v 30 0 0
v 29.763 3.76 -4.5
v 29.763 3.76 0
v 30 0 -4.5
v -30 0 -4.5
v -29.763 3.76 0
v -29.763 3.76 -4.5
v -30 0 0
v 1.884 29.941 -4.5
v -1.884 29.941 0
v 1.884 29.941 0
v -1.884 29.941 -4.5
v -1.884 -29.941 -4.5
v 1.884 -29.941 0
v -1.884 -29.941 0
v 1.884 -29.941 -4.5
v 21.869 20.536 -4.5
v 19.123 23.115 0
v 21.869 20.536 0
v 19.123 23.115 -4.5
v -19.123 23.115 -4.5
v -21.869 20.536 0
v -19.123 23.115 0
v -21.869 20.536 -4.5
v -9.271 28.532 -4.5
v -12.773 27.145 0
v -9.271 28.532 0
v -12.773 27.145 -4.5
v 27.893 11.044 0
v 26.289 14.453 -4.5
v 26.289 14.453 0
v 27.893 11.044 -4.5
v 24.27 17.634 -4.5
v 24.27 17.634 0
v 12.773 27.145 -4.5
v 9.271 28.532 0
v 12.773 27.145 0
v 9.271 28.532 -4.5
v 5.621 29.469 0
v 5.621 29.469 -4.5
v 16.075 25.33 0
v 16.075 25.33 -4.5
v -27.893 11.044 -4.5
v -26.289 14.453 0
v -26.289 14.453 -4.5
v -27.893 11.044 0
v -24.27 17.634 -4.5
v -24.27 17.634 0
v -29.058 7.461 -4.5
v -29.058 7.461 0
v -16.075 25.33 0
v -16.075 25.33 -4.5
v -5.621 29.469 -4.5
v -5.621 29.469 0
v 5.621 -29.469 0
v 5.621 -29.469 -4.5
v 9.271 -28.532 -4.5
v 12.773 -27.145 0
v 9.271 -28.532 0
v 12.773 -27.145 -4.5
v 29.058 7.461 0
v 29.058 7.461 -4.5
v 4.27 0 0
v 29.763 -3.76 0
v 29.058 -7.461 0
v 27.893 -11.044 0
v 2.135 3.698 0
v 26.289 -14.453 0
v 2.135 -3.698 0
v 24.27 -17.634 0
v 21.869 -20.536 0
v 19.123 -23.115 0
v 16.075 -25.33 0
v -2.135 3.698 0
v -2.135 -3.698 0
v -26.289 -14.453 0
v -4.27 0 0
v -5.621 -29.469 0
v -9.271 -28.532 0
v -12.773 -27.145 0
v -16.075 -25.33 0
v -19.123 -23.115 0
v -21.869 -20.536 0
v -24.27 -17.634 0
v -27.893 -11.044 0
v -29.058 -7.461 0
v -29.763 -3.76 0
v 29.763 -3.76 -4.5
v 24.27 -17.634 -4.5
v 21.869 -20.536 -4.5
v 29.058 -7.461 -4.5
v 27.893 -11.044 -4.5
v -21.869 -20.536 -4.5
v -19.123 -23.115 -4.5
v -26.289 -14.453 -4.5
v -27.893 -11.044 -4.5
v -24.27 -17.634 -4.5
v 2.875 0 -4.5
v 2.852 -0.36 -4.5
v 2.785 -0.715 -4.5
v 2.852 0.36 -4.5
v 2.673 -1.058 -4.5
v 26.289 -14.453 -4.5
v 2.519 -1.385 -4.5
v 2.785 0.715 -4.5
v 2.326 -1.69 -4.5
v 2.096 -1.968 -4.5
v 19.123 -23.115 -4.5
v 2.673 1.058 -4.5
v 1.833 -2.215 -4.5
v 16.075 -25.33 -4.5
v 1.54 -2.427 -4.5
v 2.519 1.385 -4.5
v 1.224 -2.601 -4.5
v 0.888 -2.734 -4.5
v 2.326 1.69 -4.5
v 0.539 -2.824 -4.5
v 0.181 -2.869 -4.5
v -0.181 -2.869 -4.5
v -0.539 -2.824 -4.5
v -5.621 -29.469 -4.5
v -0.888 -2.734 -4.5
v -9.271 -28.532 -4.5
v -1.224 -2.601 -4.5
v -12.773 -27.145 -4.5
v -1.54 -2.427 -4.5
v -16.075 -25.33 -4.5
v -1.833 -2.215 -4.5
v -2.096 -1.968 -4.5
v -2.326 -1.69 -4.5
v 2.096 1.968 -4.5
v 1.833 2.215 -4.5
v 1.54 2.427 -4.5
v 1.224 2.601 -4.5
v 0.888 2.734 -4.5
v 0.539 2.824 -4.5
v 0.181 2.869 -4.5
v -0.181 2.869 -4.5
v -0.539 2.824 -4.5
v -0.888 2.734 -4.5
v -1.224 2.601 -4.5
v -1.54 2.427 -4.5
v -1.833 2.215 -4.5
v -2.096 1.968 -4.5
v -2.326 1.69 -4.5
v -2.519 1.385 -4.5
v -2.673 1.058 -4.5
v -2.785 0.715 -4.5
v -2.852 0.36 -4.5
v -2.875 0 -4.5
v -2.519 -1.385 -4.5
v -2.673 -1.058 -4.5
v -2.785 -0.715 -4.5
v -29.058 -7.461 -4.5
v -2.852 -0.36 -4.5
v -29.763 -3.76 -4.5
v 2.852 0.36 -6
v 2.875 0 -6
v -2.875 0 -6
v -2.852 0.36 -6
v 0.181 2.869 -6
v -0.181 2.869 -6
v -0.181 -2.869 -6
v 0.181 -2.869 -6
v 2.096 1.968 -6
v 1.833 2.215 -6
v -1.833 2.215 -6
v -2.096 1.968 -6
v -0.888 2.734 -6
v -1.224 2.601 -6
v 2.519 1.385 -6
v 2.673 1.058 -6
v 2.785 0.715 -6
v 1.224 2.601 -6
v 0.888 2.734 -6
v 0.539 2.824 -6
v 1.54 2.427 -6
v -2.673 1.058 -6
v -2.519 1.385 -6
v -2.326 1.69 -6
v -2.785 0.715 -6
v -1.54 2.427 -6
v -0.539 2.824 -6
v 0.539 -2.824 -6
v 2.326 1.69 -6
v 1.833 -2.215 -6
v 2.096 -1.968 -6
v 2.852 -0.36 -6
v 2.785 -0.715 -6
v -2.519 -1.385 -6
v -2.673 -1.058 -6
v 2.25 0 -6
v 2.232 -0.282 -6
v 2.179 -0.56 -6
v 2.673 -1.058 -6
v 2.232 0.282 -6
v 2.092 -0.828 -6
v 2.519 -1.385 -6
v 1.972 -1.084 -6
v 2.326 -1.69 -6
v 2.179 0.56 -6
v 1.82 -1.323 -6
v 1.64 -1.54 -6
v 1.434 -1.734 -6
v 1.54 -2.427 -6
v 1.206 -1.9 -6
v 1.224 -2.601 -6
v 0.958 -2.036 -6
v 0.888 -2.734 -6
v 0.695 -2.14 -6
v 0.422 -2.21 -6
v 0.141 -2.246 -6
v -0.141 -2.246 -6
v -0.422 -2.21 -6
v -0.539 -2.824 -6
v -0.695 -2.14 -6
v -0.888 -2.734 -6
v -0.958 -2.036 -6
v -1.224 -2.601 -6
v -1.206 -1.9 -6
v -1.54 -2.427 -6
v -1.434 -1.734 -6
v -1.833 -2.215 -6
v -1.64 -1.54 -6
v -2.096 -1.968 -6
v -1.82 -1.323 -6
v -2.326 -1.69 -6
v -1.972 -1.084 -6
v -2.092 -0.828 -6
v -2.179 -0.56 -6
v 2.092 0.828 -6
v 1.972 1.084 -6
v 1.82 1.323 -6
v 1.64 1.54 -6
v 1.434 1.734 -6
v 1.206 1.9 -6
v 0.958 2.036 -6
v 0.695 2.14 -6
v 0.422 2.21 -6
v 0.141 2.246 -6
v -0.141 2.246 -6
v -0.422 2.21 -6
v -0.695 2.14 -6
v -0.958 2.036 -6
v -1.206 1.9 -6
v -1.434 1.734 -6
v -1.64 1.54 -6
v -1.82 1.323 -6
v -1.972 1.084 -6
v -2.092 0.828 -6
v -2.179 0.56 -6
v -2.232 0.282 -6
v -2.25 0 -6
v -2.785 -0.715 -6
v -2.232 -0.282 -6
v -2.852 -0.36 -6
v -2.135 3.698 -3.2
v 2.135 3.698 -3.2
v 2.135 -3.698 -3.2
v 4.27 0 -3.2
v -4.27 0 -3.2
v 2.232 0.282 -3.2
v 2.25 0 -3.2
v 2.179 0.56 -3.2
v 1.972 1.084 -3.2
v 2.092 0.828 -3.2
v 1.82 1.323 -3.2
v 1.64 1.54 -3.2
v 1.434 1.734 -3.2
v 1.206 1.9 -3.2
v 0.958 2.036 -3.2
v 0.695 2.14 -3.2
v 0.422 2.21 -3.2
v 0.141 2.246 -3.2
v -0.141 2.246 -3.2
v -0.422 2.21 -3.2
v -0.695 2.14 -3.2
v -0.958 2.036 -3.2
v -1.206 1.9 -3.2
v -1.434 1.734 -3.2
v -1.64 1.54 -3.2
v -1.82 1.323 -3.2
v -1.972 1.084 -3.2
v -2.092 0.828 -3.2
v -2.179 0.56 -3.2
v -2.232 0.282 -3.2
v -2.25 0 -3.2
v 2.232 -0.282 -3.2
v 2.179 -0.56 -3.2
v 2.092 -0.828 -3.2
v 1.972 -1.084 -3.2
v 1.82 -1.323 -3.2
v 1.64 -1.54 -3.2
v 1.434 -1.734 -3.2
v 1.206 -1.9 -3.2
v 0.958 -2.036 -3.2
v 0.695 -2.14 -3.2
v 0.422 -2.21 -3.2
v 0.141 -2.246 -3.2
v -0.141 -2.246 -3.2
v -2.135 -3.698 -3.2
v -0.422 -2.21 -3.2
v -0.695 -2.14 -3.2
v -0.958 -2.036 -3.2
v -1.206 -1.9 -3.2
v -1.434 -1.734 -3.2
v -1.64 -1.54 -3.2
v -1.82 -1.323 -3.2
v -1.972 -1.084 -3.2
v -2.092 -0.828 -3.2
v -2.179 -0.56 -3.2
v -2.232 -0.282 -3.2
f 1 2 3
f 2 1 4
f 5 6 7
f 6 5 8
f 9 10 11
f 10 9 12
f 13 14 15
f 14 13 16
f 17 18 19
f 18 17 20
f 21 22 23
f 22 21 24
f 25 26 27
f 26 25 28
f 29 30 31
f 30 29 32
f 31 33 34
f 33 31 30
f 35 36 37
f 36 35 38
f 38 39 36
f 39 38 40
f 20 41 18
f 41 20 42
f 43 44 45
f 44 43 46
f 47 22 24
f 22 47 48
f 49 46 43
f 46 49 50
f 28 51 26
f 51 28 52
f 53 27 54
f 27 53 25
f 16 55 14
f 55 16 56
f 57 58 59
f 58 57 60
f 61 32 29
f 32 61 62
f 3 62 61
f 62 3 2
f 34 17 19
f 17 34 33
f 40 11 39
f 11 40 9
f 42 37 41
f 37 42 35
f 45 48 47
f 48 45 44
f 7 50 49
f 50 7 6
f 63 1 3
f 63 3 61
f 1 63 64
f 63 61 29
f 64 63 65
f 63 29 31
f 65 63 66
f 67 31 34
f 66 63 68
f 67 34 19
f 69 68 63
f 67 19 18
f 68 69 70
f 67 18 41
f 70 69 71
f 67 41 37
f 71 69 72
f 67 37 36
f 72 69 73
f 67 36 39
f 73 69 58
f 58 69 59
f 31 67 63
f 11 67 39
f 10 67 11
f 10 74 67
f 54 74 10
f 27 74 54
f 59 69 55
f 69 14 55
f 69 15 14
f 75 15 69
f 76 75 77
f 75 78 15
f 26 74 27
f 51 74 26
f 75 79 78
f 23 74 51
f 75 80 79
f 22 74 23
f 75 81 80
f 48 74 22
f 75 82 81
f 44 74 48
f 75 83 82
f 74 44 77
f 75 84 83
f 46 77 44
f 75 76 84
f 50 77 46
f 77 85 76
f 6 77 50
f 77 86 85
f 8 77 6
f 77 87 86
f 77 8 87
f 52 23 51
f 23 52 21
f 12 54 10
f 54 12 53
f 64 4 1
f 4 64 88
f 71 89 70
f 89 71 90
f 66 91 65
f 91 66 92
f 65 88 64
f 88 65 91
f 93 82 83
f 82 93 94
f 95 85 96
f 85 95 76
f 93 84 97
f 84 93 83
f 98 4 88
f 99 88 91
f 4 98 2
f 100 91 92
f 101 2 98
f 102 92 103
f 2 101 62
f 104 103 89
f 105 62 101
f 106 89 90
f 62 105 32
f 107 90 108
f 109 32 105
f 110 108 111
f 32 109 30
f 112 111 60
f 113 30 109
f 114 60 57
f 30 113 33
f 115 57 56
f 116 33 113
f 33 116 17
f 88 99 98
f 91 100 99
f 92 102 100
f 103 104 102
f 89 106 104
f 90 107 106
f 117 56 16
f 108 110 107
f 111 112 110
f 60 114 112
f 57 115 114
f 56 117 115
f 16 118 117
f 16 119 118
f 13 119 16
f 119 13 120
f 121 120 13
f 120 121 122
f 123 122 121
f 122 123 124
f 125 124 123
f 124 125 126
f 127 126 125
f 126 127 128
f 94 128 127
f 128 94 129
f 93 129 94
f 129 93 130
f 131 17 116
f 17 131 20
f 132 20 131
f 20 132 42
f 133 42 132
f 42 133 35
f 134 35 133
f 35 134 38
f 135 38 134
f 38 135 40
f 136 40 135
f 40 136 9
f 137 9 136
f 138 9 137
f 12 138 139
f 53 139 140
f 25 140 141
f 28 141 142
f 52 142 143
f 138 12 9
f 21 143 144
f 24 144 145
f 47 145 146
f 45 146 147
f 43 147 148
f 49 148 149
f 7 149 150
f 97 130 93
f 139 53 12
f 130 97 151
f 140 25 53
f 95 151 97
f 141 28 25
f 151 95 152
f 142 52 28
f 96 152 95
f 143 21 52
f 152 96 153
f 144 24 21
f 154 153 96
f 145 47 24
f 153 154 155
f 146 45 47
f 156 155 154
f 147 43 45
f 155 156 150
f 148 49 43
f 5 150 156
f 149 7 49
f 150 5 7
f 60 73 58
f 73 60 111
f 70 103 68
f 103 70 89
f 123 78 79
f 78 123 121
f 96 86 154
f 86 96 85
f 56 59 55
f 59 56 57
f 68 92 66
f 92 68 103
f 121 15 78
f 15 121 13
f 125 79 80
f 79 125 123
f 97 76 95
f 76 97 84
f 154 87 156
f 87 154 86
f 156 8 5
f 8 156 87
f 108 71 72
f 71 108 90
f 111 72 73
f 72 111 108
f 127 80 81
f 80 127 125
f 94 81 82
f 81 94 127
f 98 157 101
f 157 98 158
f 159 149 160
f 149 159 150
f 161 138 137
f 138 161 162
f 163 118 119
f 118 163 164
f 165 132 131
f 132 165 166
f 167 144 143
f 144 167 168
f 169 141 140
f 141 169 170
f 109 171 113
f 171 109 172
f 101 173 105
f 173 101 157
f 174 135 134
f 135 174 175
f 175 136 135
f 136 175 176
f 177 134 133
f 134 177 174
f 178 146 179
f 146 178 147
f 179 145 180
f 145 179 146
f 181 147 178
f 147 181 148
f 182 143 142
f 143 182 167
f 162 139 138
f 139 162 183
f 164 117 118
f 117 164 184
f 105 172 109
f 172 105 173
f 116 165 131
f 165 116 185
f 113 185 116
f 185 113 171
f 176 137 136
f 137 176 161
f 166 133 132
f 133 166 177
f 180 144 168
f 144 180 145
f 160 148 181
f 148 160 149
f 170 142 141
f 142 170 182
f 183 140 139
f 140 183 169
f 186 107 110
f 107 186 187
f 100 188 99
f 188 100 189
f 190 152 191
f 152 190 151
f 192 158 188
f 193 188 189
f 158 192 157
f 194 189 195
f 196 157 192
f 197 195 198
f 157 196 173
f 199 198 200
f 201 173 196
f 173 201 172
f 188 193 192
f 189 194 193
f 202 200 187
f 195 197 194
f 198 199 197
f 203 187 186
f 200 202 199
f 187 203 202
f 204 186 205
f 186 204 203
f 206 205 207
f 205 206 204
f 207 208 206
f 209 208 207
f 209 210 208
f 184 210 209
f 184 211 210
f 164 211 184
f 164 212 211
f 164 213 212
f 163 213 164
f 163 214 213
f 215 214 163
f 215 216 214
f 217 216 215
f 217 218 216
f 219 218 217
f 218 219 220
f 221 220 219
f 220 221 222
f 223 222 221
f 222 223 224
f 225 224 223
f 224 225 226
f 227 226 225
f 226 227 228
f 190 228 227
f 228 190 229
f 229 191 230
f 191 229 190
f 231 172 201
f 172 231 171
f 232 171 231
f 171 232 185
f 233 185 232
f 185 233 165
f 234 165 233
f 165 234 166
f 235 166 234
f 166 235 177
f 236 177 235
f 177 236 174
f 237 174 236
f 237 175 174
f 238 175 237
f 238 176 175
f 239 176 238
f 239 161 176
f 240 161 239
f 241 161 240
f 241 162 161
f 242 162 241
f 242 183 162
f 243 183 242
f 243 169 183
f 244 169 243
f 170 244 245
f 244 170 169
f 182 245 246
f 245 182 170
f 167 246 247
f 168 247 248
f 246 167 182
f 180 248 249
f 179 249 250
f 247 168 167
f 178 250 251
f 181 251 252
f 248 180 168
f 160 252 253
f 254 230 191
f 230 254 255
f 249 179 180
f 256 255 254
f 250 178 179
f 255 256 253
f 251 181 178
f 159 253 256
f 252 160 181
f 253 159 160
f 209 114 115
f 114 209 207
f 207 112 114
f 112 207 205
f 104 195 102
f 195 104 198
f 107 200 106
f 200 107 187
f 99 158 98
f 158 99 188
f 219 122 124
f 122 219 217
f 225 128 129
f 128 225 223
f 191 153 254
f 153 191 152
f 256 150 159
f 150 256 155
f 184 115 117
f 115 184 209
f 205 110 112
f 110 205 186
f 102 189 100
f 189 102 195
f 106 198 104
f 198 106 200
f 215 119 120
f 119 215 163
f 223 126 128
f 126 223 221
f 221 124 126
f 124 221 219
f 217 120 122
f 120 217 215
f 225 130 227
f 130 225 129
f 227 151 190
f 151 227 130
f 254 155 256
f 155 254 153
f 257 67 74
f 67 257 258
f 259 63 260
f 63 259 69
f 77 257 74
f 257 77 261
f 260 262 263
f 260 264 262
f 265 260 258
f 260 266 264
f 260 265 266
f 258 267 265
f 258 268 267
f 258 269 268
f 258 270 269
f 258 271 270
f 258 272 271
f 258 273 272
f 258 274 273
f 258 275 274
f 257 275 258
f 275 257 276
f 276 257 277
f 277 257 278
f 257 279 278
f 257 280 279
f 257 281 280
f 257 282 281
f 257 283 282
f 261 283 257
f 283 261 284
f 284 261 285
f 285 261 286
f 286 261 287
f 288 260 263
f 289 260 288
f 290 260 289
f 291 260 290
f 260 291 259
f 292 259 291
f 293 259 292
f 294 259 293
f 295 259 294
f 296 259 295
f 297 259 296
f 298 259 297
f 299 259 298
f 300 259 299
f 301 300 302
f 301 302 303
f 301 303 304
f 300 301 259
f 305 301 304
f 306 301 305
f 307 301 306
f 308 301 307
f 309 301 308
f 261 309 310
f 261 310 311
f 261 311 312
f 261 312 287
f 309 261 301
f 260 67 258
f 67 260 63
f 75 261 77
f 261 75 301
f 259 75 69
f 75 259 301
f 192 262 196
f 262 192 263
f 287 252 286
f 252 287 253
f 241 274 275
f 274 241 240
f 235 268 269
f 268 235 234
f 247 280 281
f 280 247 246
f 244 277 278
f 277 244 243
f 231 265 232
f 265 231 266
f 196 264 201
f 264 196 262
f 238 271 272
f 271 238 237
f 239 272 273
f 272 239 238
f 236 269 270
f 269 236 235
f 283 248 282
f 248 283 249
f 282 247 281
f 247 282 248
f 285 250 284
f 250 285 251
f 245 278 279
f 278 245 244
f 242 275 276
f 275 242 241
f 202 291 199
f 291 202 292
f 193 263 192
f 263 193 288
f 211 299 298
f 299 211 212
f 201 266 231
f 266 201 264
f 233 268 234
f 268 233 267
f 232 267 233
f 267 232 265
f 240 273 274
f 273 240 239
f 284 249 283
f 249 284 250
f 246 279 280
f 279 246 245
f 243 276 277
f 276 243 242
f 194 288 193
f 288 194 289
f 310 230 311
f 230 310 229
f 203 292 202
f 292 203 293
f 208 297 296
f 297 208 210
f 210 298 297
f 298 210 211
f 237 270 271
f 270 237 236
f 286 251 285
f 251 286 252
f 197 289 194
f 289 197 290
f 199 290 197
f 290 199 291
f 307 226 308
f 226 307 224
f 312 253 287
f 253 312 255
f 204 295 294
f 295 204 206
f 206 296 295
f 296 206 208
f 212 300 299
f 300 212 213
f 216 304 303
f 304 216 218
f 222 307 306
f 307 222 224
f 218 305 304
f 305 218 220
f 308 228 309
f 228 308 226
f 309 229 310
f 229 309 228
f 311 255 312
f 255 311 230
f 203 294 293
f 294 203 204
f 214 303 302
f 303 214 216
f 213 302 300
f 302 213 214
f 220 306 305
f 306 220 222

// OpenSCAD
$fn = 50;


difference() {
	union() {
		translate(v = [0, 0, -4.5000000000]) {
			cylinder(h = 4.5000000000, r = 30.0000000000);
		}
		translate(v = [0, 0, -6.0000000000]) {
			cylinder(h = 6, r = 2.8750000000);
		}
	}
	union() {
		translate(v = [0, 0, 0]) {
			rotate(a = [0, 0, 0]) {
				difference() {
					union() {
						translate(v = [0, 0, -3.2000000000]) {
							linear_extrude(height = 3.2000000000) {
								polygon(points = [[4.2698000000, 0.0000000000], [2.1349000000, 3.6977552691], [-2.1349000000, 3.6977552691], [-4.2698000000, 0.0000000000], [-2.1349000000, -3.6977552691], [2.1349000000, -3.6977552691]]);
							}
						}
					}
					union();
				}
			}
		}
		#translate(v = [0, 0, -100.0000000000]) {
			cylinder(h = 200, r = 2.2500000000);
		}
	}
}
